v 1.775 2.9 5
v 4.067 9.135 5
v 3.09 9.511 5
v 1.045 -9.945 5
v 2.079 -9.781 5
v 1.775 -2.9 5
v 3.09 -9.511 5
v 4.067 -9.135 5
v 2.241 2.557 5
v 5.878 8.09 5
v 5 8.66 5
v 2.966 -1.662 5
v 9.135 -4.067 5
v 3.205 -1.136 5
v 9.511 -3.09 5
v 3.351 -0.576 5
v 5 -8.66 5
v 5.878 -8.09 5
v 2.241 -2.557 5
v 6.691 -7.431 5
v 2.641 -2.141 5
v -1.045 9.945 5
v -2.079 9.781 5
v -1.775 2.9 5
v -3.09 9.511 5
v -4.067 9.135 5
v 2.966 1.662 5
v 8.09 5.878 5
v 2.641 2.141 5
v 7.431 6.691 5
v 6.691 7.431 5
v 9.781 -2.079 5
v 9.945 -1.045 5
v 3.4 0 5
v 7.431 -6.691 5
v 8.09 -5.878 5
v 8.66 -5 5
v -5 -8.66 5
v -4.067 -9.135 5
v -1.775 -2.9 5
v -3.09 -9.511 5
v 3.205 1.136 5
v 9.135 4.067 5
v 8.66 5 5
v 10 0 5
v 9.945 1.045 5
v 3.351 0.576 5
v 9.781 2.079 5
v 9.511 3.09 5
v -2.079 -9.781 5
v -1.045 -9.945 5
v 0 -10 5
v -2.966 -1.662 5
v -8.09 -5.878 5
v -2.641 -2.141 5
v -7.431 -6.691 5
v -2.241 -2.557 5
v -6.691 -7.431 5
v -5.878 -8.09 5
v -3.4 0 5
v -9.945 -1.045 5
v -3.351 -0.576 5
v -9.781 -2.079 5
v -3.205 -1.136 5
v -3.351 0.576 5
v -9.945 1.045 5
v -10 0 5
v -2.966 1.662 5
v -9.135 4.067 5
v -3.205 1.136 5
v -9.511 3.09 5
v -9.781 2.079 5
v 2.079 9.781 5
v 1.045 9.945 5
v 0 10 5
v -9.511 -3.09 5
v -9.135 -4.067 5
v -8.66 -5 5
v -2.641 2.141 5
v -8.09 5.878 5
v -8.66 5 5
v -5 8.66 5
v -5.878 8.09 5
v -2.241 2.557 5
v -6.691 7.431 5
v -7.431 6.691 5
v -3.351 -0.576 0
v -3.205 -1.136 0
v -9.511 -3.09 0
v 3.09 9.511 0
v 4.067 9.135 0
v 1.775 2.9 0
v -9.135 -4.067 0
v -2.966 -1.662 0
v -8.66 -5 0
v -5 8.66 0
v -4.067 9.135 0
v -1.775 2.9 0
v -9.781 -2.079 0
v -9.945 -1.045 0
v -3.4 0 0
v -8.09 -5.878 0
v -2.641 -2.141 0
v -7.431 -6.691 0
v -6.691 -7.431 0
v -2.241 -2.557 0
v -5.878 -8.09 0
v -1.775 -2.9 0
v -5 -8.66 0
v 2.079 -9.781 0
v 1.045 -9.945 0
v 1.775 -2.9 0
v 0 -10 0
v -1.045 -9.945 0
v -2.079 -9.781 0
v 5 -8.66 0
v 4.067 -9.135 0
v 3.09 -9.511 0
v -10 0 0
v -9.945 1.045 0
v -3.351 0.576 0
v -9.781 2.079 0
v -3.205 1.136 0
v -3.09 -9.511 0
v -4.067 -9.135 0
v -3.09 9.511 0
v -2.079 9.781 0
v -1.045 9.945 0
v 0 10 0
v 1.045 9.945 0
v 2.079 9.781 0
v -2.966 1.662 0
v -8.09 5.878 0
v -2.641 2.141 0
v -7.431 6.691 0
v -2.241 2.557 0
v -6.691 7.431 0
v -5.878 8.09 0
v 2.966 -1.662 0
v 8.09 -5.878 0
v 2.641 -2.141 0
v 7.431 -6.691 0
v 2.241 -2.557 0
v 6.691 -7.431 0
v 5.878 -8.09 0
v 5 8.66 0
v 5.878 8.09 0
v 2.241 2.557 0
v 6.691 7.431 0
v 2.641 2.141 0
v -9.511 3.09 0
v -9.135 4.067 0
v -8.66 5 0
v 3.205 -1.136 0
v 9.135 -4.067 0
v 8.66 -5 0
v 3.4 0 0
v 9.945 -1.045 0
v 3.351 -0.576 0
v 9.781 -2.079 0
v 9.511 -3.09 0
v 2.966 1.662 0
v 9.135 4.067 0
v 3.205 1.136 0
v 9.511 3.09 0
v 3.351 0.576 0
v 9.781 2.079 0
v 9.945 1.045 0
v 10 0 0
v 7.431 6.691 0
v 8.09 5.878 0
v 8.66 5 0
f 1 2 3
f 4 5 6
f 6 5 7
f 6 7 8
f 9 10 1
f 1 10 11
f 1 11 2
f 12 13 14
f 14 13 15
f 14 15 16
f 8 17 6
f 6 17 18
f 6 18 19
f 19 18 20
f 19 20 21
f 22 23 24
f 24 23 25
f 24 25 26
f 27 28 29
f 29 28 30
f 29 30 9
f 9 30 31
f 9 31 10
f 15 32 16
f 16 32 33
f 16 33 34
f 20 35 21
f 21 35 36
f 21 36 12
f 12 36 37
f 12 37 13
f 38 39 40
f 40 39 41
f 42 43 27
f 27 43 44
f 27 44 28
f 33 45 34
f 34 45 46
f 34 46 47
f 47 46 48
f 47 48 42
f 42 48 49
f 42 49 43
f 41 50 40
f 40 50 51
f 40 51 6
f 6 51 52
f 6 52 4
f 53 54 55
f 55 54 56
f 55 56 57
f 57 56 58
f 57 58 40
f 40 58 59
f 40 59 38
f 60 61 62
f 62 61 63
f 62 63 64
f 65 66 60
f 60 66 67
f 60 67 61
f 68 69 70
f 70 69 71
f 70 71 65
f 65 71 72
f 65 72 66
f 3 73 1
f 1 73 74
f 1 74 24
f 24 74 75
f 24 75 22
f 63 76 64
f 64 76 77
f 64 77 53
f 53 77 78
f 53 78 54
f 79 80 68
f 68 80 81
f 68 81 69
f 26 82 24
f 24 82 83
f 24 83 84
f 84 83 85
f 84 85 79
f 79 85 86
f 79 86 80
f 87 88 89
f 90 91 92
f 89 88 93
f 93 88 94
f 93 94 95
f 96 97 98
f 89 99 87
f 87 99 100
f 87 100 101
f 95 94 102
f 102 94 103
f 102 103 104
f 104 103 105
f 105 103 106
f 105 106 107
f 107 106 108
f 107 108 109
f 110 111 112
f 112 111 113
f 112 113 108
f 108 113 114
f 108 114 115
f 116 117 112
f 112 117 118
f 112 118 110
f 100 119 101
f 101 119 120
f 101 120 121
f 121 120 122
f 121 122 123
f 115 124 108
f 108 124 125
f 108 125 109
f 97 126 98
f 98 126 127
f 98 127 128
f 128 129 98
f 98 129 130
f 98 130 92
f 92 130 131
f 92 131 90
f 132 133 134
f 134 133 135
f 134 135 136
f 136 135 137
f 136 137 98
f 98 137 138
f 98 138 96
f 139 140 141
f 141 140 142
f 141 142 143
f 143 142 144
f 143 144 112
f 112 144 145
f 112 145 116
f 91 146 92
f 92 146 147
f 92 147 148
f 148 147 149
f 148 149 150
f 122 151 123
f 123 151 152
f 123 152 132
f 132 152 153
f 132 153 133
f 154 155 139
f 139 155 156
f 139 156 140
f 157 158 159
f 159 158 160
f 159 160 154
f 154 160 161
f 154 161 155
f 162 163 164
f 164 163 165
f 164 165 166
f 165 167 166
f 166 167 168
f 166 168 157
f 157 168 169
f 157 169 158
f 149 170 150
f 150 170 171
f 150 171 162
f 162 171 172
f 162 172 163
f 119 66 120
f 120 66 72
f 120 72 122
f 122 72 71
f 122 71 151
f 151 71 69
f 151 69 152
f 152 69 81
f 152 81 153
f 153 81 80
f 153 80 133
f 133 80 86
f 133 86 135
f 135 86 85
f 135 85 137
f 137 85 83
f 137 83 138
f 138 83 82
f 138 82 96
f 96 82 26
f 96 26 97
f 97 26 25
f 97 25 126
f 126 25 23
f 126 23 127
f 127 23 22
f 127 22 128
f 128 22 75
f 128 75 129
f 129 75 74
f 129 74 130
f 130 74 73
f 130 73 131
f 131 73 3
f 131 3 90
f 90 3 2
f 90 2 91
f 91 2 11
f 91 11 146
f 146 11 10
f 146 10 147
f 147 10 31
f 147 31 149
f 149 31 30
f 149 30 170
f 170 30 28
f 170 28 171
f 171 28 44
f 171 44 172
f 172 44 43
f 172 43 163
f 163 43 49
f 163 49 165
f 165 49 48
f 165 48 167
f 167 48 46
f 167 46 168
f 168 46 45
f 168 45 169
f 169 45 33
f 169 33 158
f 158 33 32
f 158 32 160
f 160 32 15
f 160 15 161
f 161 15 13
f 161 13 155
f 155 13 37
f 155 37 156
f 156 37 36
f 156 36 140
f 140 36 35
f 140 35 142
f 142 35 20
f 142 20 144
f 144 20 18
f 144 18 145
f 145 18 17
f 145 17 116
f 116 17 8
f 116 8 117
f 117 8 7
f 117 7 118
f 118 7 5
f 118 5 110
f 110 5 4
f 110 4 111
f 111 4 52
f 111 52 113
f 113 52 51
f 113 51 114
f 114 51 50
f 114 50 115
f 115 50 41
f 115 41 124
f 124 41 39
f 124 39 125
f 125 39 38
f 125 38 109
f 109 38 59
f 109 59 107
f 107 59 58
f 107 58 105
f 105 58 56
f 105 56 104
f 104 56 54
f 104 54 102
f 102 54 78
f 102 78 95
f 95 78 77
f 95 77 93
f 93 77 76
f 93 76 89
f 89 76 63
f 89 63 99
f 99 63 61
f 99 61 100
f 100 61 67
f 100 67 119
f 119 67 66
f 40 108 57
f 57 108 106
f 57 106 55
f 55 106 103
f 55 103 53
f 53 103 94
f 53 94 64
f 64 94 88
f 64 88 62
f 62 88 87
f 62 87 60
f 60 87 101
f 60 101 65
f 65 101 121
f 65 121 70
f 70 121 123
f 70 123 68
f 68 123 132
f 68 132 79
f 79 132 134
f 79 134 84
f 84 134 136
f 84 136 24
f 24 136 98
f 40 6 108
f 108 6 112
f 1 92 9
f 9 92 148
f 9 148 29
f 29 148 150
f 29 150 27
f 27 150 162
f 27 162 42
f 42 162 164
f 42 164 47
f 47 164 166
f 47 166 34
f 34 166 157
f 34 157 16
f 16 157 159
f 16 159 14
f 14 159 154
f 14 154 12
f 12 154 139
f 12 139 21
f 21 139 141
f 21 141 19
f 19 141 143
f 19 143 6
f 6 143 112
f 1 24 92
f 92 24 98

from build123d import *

# Parameters (mm, degrees)
SKETCH1_R           = 10
BOSS_EXTRUDE1_DEPTH = 5


with BuildPart() as part:
    # Sketch1 → Boss-Extrude1 (new body)
    with BuildSketch(Plane.XY):
        Circle(SKETCH1_R)
        with BuildLine():
            Line((-1.774823935, 2.9), (1.774823935, 2.9))
            ThreePointArc((1.774823935, 2.9), (3.4, 0), (1.774823935, -2.9))
            Line((1.774823935, -2.9), (-1.774823935, -2.9))
            ThreePointArc((-1.774823935, -2.9), (-3.4, 0), (-1.774823935, 2.9))
        make_face(mode=Mode.SUBTRACT)
    extrude(amount=BOSS_EXTRUDE1_DEPTH)


solid = part.part
